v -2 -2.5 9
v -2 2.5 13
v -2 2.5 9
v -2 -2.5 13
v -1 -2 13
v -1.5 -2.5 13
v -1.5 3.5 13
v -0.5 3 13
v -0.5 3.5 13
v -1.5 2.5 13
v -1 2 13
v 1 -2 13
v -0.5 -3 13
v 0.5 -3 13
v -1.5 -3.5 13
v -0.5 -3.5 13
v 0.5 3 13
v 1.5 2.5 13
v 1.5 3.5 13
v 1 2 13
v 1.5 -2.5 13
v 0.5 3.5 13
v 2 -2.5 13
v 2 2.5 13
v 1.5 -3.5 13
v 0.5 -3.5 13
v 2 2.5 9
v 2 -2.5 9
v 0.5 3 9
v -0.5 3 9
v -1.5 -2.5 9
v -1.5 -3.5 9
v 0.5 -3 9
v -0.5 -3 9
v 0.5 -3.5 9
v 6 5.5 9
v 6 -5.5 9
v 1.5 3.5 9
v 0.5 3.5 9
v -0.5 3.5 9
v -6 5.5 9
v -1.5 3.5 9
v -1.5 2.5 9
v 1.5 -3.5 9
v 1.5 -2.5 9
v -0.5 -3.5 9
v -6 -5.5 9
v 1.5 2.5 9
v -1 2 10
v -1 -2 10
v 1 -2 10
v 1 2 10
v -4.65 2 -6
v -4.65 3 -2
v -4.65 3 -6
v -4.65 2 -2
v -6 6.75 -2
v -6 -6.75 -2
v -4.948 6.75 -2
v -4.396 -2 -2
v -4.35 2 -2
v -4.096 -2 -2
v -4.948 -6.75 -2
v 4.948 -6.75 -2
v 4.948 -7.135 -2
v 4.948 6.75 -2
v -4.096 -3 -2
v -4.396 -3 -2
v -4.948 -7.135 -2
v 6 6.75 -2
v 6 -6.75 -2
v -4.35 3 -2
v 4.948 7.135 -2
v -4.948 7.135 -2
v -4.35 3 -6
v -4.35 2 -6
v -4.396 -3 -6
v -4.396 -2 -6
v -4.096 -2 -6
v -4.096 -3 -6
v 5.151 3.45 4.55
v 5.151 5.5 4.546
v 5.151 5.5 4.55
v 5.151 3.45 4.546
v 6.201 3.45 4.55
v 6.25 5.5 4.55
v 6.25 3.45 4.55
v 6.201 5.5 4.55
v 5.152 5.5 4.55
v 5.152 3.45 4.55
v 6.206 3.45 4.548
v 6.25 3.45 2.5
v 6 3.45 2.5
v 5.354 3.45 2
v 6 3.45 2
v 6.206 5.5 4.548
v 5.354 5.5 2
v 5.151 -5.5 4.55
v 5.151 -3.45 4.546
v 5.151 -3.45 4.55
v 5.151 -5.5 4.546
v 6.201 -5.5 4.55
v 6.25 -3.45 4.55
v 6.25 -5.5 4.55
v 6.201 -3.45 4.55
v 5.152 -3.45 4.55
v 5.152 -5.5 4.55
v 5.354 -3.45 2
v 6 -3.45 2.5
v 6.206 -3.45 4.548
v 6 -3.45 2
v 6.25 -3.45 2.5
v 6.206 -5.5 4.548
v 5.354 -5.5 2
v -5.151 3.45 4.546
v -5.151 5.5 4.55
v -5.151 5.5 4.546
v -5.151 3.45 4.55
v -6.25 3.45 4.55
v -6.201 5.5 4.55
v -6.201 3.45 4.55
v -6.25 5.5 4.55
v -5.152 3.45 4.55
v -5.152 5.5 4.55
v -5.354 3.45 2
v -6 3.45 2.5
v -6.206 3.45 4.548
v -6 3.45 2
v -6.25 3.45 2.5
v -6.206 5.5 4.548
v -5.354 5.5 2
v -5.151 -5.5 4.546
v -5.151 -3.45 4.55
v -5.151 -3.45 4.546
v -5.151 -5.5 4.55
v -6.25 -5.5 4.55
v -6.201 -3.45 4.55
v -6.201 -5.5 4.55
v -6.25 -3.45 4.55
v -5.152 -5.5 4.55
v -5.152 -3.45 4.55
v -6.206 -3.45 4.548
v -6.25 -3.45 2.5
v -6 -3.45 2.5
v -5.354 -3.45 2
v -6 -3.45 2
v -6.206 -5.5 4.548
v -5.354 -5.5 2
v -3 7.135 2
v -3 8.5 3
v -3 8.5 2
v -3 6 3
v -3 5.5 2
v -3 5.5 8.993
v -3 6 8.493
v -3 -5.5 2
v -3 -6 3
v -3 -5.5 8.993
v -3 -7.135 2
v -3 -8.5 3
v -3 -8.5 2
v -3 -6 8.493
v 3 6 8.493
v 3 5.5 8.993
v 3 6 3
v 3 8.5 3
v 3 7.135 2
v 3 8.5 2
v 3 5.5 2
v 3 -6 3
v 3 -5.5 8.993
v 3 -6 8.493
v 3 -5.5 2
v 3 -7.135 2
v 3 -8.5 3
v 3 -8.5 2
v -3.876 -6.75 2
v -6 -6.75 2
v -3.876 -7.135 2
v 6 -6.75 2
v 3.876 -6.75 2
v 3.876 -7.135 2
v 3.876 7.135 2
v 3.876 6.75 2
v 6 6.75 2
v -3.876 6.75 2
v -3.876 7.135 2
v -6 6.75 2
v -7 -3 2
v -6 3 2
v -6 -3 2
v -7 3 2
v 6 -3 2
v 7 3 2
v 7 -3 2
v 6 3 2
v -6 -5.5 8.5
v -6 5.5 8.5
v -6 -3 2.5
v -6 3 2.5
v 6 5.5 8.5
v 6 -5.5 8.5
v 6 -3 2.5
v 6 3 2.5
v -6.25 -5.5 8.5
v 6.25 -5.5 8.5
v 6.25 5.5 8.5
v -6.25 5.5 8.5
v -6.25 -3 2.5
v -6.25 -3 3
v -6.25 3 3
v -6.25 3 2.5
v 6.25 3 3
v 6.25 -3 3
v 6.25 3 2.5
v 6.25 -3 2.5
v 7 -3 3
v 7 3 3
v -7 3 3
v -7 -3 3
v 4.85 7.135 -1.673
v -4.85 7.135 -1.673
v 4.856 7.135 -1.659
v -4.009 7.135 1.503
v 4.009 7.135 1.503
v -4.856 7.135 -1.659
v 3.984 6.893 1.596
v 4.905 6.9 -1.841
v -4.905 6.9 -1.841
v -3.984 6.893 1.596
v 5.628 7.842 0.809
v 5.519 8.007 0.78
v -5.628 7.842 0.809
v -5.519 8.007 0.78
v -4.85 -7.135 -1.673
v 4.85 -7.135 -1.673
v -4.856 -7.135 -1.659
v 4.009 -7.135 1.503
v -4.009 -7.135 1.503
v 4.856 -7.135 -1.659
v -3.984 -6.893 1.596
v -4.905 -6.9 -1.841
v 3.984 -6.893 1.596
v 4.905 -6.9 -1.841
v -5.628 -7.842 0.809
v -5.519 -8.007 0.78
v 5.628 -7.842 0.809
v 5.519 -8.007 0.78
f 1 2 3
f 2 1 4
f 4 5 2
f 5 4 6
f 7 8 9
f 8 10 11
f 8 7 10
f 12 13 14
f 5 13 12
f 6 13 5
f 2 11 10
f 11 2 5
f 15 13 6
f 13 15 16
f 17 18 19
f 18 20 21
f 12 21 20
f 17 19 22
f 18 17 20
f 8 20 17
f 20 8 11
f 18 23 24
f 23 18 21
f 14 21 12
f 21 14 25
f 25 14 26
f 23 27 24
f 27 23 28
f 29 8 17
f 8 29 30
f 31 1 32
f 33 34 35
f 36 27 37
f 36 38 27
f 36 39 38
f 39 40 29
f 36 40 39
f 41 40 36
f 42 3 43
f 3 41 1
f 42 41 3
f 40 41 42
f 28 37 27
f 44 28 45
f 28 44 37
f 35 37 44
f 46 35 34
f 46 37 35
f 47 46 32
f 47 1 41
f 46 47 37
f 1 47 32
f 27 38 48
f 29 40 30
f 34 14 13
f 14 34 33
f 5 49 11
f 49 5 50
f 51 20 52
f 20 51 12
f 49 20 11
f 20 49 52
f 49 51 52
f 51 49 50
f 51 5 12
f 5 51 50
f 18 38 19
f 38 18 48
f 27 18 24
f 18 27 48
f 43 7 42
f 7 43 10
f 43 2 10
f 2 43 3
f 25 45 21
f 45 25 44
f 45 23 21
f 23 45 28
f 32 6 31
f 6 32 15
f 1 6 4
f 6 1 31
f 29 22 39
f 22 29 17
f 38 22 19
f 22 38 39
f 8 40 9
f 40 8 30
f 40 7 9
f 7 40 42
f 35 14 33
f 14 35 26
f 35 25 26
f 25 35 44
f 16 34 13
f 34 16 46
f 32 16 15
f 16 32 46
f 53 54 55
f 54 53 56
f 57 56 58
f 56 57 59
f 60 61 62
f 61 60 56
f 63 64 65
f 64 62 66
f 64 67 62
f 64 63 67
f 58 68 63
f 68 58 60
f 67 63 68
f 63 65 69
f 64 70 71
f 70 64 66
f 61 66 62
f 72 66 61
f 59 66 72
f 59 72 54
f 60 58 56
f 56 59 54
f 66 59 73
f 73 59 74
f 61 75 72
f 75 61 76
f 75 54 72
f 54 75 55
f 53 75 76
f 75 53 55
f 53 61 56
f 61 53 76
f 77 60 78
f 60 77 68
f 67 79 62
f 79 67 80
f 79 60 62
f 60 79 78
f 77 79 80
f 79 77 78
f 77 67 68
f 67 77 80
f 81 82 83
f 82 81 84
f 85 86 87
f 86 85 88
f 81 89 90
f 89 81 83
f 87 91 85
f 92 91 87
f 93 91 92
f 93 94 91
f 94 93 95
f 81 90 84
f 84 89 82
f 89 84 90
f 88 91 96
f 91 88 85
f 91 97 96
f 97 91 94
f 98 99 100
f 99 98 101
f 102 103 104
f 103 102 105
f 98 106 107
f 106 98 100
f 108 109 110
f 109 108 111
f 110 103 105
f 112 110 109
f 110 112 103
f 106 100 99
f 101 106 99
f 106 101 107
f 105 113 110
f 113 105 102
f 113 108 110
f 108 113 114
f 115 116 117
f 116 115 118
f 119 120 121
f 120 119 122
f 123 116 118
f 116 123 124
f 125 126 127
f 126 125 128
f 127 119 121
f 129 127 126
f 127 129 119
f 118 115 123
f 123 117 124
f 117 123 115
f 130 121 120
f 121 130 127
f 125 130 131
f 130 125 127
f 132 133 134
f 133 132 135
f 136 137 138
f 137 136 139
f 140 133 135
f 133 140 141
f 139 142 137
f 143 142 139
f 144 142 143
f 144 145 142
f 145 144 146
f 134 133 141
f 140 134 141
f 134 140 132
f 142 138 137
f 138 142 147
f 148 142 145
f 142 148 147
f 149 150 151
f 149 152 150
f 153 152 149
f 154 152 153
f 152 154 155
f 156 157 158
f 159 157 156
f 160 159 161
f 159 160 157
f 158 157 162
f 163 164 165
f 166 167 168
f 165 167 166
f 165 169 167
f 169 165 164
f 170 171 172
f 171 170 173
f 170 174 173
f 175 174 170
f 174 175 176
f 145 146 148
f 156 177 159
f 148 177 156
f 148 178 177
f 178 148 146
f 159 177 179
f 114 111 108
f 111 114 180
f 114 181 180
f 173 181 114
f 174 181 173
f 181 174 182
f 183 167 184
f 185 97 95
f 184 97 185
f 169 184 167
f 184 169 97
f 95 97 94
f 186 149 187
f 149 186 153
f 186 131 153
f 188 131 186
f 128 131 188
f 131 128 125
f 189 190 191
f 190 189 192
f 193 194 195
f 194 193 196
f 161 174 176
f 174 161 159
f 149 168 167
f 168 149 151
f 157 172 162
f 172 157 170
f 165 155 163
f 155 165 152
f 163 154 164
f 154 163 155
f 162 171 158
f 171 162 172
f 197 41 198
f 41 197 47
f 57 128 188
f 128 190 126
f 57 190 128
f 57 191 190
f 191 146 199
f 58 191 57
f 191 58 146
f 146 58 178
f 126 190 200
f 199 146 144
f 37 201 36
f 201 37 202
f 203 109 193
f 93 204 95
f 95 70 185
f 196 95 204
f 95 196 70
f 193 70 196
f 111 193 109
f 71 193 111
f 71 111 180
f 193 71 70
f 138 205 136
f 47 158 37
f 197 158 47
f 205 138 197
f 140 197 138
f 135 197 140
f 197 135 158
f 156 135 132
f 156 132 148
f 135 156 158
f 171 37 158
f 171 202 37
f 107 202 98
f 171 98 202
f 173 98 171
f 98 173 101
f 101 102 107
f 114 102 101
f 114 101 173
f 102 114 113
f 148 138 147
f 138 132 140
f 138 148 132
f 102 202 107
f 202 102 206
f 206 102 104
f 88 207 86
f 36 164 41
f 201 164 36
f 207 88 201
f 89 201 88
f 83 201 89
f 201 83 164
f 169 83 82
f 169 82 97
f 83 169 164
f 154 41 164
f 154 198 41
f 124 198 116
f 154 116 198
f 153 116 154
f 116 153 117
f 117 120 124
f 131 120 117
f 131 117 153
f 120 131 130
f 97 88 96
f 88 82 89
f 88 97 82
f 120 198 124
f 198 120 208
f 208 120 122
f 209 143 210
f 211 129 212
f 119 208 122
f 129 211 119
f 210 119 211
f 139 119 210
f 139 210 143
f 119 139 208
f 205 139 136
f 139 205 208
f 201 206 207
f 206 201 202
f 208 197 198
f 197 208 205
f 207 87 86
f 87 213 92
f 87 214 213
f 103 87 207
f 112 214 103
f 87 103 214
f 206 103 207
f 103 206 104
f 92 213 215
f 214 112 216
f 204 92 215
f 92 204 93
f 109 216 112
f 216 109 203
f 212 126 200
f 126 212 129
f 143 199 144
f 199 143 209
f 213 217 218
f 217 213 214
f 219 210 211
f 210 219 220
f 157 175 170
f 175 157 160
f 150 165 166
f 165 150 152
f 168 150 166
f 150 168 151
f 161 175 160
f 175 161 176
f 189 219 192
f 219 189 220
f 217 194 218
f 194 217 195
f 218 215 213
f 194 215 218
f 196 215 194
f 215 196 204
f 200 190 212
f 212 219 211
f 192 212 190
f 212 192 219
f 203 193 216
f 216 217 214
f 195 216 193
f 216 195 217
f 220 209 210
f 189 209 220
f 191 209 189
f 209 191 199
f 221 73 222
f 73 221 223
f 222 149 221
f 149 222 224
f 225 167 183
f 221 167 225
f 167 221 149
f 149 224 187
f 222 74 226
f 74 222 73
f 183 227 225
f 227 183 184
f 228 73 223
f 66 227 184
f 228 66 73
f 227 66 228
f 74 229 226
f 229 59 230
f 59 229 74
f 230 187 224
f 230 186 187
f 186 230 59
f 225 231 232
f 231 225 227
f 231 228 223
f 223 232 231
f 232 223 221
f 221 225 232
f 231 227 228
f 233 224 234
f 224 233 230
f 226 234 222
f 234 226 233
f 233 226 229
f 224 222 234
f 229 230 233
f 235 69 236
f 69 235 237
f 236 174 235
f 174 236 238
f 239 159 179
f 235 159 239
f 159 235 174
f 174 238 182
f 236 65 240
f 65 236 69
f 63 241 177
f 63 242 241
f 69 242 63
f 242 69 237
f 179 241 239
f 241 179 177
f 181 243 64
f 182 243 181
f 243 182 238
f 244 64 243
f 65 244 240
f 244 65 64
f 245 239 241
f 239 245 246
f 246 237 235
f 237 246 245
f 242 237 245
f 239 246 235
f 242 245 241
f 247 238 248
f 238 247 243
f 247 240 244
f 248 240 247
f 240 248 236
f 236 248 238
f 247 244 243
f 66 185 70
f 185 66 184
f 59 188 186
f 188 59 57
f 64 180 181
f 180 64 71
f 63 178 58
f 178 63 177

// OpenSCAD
module stem(){
  difference(){
    cube([4,6,4],center=true);
    translate([0,0,1])cube([2,4,4],center=true);
    translate([2,3,0])cube([1,1,4.2],center=true);
    translate([-2,3,0])cube([1,1,4.2],center=true);
    translate([2,-3,0])cube([1,1,4.2],center=true);
    translate([-2,-3,0])cube([1,1,4.2],center=true);
  }
  
  
  translate([1,3,0])cube([1,1,4],center=true);
  translate([-1,3,0])cube([1,1,4],center=true);
  translate([1,-3,0])cube([1,1,4],center=true);
  translate([-1,-3,0])cube([1,1,4],center=true);
}

module top(){
  module d(){
    difference(){
      cube([1.1,2.1,3.1],center=true);
      translate([-0.54,0,0])rotate([0,18.5,0])cube([1,2.2,3.6],center=true);
    }
  }
  
  cube([6,17,1],center=true);
  cube([14,6,1],center=true);

  translate([0,0,3]){
    difference(){
      union(){
        cube([12,11,7],center=true);
        cube([12.5,11,6],center=true);
        difference(){
          cube([6,12,7],center=true);
          translate([0,6,3.7])rotate([45,0,0])cube([7,1,2],center=true);
          translate([0,-6,3.7])rotate([-45,0,0])cube([7,1,2],center=true);
        }
        
      }
      translate([12*0.5-0.299,11*0.5-1,-2.5])d();
      translate([12*0.5-0.299,-11*0.5+1,-2.5])d();
      
      translate([-12*0.5+0.299,11*0.5-1,-2.5])rotate([0,0,180])d();
      translate([-12*0.5+0.299,-11*0.5+1,-2.5])rotate([0,0,180])d();
    }
  }
}

module bottom(){
  
  module f(){
    difference(){
      cube([3,0.2,3],center=true);
      translate([-1.05,0,-1.05])rotate([0,45,0])cube([6,0.5,3],center=true);
    }
  }

  module bSide(){
    difference(){
      cube([10,0.5,4],center=true);
    
      translate([7,0,0])rotate([0,-15,0])cube([5,1,6],center=true);
      translate([-7,0,0])rotate([0,15,0])cube([5,1,6],center=true);
    }
    
    module e(){translate([4,-0.14,0])rotate([-9,45/2,30])f();}
    
    e();
    mirror([1,0,0])e();
  }
  
  cube([12,13.5,4],center=true);
  translate([0,13.5*0.51,0])bSide();
  translate([0,-13.5*0.51,0])rotate([0,0,180])bSide();
}

module legs(){
  module leg(){
    difference(){
      cube([0.3,1,4],center=true);
      
      translate([0,-0.8,-2])rotate([20,0,0])cube([1,1,2],center=true);
      translate([0,-0.75,-2])rotate([30,0,0])cube([1,1,2],center=true);
      translate([0,0.8,-2])rotate([-20,0,0])cube([1,1,2],center=true);
      translate([0,0.75,-2])rotate([-30,0,0])cube([1,1,2],center=true);
    }
  }
  
  translate([0,2.5,0])leg();
  translate([0.254,-2.5,0])leg();
}

translate([0,0,11])stem();
translate([0,0,2.5])top();
bottom();
translate([-(13*0.5-2),0,-4])legs();
  
